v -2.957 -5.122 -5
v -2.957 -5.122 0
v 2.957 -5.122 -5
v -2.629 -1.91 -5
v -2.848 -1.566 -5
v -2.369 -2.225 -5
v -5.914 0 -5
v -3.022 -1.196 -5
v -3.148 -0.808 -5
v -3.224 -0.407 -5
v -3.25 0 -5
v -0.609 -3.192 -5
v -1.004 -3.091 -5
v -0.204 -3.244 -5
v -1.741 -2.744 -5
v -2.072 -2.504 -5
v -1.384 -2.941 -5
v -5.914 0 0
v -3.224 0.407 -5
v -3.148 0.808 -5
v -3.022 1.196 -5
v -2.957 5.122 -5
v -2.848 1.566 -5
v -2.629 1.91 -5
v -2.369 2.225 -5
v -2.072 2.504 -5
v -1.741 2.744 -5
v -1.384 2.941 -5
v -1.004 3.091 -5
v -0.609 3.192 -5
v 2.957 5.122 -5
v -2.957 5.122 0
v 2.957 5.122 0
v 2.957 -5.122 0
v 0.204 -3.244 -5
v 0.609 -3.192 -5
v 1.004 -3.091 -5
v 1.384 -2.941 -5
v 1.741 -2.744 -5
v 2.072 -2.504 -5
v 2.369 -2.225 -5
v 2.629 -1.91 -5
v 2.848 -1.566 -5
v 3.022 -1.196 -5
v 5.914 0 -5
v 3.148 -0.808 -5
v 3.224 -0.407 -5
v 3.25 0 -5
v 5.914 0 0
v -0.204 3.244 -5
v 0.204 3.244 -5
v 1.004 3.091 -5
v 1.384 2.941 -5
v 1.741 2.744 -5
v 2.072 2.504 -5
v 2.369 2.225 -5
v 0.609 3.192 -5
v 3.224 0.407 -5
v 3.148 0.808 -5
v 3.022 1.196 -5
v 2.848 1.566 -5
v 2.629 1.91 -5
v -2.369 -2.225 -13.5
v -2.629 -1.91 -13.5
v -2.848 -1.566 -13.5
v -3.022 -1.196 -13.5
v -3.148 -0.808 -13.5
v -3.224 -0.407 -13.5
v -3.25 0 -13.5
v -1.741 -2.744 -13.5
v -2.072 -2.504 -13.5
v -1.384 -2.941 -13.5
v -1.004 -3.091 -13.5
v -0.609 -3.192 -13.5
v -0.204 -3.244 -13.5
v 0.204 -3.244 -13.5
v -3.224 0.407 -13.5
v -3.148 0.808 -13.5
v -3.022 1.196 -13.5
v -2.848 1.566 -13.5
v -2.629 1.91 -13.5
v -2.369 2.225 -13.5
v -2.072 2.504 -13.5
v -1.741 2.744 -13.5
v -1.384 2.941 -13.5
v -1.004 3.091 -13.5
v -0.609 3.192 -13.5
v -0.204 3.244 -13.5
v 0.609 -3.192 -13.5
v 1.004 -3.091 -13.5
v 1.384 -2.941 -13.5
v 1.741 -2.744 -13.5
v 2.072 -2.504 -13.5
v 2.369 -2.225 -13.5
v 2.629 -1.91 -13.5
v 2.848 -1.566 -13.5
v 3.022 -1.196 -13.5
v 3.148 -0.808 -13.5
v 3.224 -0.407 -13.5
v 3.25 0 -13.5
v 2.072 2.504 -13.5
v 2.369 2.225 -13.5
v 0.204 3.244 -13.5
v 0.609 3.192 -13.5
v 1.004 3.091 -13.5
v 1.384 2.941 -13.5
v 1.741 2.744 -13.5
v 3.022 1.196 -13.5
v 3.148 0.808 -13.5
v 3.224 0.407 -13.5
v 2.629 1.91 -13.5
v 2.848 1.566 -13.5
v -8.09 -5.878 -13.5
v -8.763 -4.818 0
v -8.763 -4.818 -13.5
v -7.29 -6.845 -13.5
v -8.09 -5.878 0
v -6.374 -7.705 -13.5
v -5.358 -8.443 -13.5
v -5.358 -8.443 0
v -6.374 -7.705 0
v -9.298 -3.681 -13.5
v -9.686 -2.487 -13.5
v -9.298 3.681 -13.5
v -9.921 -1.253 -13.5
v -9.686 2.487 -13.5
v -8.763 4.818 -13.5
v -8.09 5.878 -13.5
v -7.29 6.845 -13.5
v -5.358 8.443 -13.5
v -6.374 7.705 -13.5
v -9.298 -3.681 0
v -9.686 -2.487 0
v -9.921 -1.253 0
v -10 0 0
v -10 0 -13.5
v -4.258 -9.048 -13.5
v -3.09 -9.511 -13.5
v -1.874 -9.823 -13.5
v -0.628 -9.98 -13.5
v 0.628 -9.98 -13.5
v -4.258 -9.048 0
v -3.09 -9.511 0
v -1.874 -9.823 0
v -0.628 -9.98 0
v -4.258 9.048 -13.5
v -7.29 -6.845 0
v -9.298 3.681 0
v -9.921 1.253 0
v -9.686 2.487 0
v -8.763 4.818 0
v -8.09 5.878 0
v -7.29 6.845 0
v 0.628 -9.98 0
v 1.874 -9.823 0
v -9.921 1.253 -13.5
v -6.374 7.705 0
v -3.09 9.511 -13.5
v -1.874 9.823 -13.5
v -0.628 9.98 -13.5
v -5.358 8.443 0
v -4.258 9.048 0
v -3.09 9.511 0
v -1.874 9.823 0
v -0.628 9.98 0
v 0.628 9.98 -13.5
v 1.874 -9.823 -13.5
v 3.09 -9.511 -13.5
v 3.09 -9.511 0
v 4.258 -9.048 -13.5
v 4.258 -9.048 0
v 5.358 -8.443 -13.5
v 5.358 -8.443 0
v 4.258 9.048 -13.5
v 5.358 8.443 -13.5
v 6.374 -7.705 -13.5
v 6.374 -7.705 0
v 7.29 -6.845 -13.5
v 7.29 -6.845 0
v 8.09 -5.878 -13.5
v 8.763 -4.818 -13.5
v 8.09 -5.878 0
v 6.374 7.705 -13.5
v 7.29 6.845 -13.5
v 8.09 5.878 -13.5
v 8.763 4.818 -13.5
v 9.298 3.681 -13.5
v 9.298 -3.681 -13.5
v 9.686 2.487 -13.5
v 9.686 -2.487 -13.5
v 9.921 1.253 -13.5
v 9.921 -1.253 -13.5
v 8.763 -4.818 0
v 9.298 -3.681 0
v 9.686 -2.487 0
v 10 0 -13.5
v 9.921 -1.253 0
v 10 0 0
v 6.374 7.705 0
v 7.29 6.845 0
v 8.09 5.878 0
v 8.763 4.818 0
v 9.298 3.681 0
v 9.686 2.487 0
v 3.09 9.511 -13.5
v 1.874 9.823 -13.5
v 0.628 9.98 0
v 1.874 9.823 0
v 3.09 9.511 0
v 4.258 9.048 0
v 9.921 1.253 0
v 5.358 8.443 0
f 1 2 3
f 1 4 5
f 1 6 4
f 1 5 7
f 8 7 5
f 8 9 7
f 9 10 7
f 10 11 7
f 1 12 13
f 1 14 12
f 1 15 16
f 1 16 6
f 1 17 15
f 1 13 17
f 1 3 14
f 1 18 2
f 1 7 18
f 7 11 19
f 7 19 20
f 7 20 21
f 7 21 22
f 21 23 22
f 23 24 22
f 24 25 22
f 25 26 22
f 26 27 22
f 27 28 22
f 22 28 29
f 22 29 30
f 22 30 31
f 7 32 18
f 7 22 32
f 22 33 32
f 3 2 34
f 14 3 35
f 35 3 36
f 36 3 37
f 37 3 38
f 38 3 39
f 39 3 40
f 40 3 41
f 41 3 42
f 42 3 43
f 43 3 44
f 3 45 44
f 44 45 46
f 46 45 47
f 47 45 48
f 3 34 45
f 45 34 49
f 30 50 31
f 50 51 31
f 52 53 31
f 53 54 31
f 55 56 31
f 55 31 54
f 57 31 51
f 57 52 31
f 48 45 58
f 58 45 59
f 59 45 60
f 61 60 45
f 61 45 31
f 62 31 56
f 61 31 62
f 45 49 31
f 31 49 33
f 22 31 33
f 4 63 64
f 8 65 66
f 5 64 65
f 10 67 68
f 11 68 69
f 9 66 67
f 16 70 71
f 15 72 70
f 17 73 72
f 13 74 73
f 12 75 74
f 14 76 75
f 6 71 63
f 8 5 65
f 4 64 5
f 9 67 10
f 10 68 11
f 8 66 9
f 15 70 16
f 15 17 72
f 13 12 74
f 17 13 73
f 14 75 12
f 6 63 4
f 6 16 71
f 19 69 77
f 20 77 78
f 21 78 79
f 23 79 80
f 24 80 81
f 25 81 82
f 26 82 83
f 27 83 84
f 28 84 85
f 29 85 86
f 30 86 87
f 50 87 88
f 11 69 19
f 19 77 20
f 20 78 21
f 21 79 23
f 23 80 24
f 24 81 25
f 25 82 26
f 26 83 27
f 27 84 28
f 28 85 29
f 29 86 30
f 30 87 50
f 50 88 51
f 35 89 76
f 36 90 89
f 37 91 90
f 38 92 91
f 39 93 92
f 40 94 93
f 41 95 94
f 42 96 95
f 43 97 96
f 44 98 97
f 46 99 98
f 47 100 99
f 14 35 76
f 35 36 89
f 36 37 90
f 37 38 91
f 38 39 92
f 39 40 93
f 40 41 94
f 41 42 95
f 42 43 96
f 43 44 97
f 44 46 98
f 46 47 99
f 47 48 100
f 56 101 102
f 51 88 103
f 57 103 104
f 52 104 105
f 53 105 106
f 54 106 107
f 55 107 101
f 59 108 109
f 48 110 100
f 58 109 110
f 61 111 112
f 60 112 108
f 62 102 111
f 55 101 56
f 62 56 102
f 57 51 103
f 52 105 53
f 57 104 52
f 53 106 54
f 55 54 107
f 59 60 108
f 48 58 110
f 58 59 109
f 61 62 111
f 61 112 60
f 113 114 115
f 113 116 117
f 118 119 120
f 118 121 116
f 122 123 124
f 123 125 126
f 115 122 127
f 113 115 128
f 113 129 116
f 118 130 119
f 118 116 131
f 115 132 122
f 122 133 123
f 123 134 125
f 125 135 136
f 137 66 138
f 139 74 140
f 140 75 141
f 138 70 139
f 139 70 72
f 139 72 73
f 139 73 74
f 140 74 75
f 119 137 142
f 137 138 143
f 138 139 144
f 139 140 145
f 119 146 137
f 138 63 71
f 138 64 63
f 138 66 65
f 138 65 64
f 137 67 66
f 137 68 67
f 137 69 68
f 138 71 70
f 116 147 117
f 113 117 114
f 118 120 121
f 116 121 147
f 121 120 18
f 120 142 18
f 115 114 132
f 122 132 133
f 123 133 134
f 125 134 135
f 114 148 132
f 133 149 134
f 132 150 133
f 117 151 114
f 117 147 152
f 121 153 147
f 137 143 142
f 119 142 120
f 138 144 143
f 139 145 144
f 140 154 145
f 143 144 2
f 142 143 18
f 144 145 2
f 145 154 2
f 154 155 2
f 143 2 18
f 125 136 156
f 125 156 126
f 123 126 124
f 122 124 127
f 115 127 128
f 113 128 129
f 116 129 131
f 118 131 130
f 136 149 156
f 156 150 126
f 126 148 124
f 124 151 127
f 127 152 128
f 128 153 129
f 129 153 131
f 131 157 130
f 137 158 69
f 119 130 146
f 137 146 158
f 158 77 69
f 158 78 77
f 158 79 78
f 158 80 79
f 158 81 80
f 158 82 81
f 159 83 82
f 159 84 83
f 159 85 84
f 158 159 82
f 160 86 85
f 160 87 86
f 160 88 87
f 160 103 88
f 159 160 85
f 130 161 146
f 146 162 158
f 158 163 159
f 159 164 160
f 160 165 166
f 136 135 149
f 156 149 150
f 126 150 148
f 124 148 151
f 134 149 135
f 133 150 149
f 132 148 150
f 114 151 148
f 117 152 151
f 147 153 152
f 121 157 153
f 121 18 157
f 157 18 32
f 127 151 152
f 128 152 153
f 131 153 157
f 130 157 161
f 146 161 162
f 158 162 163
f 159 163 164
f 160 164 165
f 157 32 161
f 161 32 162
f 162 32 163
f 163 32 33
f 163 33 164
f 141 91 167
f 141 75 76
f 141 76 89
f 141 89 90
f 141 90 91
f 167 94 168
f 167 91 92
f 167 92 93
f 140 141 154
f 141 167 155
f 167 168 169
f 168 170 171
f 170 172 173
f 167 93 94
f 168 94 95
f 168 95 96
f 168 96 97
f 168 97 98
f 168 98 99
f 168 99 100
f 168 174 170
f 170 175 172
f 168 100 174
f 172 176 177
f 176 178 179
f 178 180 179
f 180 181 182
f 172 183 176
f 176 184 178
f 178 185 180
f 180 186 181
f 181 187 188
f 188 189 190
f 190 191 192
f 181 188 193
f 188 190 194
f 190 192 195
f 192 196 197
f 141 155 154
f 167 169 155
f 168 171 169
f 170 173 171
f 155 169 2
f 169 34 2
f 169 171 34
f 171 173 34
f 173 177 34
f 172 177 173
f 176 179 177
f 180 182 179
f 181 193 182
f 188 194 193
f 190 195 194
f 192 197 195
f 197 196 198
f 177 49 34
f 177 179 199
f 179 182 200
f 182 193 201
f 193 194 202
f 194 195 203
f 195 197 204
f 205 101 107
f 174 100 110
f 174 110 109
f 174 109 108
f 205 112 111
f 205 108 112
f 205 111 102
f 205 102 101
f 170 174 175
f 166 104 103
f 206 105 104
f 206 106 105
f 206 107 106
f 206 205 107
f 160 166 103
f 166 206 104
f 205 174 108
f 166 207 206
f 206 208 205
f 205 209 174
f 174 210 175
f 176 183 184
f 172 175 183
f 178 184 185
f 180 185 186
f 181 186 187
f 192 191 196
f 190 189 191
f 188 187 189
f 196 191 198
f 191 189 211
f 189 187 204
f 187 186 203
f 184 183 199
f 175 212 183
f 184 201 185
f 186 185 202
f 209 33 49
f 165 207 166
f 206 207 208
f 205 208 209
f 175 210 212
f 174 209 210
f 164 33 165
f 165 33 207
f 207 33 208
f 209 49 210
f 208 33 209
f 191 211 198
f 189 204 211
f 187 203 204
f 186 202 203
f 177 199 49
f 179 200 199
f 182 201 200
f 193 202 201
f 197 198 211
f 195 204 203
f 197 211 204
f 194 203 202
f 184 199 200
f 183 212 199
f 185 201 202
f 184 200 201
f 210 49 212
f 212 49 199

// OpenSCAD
$fn = 50;

difference() {
	union() {
		translate(v = [0, 0, -13.5]) {
			cylinder(h = 13.5, r = 10.0);
		}
		#translate(v = [0, 0, -15.0]) {
			cylinder(h = 15, r = 2.875);
		}
	}
	union() {
		translate(v = [0, 0, 0]) {
			rotate(a = [0, 0, 0]) {
				difference() {
					union() {
						translate(v = [0, 0, -5]) {
							linear_extrude(height = 5) {
								polygon(points = [[5.914249999999999, 0.0], [2.957125, 5.1218907443321156], [-2.9571249999999982, 5.1218907443321156], [-5.914249999999999, 7.242867331857232e-16], [-2.9571250000000022, -5.121890744332115], [2.9571249999999956, -5.121890744332118]]);
							}
						}
					}
					union();
				}
			}
		}
		#translate(v = [0, 0, -100.0]) {
			cylinder(h = 200, r = 3.25);
		}
	}
}
